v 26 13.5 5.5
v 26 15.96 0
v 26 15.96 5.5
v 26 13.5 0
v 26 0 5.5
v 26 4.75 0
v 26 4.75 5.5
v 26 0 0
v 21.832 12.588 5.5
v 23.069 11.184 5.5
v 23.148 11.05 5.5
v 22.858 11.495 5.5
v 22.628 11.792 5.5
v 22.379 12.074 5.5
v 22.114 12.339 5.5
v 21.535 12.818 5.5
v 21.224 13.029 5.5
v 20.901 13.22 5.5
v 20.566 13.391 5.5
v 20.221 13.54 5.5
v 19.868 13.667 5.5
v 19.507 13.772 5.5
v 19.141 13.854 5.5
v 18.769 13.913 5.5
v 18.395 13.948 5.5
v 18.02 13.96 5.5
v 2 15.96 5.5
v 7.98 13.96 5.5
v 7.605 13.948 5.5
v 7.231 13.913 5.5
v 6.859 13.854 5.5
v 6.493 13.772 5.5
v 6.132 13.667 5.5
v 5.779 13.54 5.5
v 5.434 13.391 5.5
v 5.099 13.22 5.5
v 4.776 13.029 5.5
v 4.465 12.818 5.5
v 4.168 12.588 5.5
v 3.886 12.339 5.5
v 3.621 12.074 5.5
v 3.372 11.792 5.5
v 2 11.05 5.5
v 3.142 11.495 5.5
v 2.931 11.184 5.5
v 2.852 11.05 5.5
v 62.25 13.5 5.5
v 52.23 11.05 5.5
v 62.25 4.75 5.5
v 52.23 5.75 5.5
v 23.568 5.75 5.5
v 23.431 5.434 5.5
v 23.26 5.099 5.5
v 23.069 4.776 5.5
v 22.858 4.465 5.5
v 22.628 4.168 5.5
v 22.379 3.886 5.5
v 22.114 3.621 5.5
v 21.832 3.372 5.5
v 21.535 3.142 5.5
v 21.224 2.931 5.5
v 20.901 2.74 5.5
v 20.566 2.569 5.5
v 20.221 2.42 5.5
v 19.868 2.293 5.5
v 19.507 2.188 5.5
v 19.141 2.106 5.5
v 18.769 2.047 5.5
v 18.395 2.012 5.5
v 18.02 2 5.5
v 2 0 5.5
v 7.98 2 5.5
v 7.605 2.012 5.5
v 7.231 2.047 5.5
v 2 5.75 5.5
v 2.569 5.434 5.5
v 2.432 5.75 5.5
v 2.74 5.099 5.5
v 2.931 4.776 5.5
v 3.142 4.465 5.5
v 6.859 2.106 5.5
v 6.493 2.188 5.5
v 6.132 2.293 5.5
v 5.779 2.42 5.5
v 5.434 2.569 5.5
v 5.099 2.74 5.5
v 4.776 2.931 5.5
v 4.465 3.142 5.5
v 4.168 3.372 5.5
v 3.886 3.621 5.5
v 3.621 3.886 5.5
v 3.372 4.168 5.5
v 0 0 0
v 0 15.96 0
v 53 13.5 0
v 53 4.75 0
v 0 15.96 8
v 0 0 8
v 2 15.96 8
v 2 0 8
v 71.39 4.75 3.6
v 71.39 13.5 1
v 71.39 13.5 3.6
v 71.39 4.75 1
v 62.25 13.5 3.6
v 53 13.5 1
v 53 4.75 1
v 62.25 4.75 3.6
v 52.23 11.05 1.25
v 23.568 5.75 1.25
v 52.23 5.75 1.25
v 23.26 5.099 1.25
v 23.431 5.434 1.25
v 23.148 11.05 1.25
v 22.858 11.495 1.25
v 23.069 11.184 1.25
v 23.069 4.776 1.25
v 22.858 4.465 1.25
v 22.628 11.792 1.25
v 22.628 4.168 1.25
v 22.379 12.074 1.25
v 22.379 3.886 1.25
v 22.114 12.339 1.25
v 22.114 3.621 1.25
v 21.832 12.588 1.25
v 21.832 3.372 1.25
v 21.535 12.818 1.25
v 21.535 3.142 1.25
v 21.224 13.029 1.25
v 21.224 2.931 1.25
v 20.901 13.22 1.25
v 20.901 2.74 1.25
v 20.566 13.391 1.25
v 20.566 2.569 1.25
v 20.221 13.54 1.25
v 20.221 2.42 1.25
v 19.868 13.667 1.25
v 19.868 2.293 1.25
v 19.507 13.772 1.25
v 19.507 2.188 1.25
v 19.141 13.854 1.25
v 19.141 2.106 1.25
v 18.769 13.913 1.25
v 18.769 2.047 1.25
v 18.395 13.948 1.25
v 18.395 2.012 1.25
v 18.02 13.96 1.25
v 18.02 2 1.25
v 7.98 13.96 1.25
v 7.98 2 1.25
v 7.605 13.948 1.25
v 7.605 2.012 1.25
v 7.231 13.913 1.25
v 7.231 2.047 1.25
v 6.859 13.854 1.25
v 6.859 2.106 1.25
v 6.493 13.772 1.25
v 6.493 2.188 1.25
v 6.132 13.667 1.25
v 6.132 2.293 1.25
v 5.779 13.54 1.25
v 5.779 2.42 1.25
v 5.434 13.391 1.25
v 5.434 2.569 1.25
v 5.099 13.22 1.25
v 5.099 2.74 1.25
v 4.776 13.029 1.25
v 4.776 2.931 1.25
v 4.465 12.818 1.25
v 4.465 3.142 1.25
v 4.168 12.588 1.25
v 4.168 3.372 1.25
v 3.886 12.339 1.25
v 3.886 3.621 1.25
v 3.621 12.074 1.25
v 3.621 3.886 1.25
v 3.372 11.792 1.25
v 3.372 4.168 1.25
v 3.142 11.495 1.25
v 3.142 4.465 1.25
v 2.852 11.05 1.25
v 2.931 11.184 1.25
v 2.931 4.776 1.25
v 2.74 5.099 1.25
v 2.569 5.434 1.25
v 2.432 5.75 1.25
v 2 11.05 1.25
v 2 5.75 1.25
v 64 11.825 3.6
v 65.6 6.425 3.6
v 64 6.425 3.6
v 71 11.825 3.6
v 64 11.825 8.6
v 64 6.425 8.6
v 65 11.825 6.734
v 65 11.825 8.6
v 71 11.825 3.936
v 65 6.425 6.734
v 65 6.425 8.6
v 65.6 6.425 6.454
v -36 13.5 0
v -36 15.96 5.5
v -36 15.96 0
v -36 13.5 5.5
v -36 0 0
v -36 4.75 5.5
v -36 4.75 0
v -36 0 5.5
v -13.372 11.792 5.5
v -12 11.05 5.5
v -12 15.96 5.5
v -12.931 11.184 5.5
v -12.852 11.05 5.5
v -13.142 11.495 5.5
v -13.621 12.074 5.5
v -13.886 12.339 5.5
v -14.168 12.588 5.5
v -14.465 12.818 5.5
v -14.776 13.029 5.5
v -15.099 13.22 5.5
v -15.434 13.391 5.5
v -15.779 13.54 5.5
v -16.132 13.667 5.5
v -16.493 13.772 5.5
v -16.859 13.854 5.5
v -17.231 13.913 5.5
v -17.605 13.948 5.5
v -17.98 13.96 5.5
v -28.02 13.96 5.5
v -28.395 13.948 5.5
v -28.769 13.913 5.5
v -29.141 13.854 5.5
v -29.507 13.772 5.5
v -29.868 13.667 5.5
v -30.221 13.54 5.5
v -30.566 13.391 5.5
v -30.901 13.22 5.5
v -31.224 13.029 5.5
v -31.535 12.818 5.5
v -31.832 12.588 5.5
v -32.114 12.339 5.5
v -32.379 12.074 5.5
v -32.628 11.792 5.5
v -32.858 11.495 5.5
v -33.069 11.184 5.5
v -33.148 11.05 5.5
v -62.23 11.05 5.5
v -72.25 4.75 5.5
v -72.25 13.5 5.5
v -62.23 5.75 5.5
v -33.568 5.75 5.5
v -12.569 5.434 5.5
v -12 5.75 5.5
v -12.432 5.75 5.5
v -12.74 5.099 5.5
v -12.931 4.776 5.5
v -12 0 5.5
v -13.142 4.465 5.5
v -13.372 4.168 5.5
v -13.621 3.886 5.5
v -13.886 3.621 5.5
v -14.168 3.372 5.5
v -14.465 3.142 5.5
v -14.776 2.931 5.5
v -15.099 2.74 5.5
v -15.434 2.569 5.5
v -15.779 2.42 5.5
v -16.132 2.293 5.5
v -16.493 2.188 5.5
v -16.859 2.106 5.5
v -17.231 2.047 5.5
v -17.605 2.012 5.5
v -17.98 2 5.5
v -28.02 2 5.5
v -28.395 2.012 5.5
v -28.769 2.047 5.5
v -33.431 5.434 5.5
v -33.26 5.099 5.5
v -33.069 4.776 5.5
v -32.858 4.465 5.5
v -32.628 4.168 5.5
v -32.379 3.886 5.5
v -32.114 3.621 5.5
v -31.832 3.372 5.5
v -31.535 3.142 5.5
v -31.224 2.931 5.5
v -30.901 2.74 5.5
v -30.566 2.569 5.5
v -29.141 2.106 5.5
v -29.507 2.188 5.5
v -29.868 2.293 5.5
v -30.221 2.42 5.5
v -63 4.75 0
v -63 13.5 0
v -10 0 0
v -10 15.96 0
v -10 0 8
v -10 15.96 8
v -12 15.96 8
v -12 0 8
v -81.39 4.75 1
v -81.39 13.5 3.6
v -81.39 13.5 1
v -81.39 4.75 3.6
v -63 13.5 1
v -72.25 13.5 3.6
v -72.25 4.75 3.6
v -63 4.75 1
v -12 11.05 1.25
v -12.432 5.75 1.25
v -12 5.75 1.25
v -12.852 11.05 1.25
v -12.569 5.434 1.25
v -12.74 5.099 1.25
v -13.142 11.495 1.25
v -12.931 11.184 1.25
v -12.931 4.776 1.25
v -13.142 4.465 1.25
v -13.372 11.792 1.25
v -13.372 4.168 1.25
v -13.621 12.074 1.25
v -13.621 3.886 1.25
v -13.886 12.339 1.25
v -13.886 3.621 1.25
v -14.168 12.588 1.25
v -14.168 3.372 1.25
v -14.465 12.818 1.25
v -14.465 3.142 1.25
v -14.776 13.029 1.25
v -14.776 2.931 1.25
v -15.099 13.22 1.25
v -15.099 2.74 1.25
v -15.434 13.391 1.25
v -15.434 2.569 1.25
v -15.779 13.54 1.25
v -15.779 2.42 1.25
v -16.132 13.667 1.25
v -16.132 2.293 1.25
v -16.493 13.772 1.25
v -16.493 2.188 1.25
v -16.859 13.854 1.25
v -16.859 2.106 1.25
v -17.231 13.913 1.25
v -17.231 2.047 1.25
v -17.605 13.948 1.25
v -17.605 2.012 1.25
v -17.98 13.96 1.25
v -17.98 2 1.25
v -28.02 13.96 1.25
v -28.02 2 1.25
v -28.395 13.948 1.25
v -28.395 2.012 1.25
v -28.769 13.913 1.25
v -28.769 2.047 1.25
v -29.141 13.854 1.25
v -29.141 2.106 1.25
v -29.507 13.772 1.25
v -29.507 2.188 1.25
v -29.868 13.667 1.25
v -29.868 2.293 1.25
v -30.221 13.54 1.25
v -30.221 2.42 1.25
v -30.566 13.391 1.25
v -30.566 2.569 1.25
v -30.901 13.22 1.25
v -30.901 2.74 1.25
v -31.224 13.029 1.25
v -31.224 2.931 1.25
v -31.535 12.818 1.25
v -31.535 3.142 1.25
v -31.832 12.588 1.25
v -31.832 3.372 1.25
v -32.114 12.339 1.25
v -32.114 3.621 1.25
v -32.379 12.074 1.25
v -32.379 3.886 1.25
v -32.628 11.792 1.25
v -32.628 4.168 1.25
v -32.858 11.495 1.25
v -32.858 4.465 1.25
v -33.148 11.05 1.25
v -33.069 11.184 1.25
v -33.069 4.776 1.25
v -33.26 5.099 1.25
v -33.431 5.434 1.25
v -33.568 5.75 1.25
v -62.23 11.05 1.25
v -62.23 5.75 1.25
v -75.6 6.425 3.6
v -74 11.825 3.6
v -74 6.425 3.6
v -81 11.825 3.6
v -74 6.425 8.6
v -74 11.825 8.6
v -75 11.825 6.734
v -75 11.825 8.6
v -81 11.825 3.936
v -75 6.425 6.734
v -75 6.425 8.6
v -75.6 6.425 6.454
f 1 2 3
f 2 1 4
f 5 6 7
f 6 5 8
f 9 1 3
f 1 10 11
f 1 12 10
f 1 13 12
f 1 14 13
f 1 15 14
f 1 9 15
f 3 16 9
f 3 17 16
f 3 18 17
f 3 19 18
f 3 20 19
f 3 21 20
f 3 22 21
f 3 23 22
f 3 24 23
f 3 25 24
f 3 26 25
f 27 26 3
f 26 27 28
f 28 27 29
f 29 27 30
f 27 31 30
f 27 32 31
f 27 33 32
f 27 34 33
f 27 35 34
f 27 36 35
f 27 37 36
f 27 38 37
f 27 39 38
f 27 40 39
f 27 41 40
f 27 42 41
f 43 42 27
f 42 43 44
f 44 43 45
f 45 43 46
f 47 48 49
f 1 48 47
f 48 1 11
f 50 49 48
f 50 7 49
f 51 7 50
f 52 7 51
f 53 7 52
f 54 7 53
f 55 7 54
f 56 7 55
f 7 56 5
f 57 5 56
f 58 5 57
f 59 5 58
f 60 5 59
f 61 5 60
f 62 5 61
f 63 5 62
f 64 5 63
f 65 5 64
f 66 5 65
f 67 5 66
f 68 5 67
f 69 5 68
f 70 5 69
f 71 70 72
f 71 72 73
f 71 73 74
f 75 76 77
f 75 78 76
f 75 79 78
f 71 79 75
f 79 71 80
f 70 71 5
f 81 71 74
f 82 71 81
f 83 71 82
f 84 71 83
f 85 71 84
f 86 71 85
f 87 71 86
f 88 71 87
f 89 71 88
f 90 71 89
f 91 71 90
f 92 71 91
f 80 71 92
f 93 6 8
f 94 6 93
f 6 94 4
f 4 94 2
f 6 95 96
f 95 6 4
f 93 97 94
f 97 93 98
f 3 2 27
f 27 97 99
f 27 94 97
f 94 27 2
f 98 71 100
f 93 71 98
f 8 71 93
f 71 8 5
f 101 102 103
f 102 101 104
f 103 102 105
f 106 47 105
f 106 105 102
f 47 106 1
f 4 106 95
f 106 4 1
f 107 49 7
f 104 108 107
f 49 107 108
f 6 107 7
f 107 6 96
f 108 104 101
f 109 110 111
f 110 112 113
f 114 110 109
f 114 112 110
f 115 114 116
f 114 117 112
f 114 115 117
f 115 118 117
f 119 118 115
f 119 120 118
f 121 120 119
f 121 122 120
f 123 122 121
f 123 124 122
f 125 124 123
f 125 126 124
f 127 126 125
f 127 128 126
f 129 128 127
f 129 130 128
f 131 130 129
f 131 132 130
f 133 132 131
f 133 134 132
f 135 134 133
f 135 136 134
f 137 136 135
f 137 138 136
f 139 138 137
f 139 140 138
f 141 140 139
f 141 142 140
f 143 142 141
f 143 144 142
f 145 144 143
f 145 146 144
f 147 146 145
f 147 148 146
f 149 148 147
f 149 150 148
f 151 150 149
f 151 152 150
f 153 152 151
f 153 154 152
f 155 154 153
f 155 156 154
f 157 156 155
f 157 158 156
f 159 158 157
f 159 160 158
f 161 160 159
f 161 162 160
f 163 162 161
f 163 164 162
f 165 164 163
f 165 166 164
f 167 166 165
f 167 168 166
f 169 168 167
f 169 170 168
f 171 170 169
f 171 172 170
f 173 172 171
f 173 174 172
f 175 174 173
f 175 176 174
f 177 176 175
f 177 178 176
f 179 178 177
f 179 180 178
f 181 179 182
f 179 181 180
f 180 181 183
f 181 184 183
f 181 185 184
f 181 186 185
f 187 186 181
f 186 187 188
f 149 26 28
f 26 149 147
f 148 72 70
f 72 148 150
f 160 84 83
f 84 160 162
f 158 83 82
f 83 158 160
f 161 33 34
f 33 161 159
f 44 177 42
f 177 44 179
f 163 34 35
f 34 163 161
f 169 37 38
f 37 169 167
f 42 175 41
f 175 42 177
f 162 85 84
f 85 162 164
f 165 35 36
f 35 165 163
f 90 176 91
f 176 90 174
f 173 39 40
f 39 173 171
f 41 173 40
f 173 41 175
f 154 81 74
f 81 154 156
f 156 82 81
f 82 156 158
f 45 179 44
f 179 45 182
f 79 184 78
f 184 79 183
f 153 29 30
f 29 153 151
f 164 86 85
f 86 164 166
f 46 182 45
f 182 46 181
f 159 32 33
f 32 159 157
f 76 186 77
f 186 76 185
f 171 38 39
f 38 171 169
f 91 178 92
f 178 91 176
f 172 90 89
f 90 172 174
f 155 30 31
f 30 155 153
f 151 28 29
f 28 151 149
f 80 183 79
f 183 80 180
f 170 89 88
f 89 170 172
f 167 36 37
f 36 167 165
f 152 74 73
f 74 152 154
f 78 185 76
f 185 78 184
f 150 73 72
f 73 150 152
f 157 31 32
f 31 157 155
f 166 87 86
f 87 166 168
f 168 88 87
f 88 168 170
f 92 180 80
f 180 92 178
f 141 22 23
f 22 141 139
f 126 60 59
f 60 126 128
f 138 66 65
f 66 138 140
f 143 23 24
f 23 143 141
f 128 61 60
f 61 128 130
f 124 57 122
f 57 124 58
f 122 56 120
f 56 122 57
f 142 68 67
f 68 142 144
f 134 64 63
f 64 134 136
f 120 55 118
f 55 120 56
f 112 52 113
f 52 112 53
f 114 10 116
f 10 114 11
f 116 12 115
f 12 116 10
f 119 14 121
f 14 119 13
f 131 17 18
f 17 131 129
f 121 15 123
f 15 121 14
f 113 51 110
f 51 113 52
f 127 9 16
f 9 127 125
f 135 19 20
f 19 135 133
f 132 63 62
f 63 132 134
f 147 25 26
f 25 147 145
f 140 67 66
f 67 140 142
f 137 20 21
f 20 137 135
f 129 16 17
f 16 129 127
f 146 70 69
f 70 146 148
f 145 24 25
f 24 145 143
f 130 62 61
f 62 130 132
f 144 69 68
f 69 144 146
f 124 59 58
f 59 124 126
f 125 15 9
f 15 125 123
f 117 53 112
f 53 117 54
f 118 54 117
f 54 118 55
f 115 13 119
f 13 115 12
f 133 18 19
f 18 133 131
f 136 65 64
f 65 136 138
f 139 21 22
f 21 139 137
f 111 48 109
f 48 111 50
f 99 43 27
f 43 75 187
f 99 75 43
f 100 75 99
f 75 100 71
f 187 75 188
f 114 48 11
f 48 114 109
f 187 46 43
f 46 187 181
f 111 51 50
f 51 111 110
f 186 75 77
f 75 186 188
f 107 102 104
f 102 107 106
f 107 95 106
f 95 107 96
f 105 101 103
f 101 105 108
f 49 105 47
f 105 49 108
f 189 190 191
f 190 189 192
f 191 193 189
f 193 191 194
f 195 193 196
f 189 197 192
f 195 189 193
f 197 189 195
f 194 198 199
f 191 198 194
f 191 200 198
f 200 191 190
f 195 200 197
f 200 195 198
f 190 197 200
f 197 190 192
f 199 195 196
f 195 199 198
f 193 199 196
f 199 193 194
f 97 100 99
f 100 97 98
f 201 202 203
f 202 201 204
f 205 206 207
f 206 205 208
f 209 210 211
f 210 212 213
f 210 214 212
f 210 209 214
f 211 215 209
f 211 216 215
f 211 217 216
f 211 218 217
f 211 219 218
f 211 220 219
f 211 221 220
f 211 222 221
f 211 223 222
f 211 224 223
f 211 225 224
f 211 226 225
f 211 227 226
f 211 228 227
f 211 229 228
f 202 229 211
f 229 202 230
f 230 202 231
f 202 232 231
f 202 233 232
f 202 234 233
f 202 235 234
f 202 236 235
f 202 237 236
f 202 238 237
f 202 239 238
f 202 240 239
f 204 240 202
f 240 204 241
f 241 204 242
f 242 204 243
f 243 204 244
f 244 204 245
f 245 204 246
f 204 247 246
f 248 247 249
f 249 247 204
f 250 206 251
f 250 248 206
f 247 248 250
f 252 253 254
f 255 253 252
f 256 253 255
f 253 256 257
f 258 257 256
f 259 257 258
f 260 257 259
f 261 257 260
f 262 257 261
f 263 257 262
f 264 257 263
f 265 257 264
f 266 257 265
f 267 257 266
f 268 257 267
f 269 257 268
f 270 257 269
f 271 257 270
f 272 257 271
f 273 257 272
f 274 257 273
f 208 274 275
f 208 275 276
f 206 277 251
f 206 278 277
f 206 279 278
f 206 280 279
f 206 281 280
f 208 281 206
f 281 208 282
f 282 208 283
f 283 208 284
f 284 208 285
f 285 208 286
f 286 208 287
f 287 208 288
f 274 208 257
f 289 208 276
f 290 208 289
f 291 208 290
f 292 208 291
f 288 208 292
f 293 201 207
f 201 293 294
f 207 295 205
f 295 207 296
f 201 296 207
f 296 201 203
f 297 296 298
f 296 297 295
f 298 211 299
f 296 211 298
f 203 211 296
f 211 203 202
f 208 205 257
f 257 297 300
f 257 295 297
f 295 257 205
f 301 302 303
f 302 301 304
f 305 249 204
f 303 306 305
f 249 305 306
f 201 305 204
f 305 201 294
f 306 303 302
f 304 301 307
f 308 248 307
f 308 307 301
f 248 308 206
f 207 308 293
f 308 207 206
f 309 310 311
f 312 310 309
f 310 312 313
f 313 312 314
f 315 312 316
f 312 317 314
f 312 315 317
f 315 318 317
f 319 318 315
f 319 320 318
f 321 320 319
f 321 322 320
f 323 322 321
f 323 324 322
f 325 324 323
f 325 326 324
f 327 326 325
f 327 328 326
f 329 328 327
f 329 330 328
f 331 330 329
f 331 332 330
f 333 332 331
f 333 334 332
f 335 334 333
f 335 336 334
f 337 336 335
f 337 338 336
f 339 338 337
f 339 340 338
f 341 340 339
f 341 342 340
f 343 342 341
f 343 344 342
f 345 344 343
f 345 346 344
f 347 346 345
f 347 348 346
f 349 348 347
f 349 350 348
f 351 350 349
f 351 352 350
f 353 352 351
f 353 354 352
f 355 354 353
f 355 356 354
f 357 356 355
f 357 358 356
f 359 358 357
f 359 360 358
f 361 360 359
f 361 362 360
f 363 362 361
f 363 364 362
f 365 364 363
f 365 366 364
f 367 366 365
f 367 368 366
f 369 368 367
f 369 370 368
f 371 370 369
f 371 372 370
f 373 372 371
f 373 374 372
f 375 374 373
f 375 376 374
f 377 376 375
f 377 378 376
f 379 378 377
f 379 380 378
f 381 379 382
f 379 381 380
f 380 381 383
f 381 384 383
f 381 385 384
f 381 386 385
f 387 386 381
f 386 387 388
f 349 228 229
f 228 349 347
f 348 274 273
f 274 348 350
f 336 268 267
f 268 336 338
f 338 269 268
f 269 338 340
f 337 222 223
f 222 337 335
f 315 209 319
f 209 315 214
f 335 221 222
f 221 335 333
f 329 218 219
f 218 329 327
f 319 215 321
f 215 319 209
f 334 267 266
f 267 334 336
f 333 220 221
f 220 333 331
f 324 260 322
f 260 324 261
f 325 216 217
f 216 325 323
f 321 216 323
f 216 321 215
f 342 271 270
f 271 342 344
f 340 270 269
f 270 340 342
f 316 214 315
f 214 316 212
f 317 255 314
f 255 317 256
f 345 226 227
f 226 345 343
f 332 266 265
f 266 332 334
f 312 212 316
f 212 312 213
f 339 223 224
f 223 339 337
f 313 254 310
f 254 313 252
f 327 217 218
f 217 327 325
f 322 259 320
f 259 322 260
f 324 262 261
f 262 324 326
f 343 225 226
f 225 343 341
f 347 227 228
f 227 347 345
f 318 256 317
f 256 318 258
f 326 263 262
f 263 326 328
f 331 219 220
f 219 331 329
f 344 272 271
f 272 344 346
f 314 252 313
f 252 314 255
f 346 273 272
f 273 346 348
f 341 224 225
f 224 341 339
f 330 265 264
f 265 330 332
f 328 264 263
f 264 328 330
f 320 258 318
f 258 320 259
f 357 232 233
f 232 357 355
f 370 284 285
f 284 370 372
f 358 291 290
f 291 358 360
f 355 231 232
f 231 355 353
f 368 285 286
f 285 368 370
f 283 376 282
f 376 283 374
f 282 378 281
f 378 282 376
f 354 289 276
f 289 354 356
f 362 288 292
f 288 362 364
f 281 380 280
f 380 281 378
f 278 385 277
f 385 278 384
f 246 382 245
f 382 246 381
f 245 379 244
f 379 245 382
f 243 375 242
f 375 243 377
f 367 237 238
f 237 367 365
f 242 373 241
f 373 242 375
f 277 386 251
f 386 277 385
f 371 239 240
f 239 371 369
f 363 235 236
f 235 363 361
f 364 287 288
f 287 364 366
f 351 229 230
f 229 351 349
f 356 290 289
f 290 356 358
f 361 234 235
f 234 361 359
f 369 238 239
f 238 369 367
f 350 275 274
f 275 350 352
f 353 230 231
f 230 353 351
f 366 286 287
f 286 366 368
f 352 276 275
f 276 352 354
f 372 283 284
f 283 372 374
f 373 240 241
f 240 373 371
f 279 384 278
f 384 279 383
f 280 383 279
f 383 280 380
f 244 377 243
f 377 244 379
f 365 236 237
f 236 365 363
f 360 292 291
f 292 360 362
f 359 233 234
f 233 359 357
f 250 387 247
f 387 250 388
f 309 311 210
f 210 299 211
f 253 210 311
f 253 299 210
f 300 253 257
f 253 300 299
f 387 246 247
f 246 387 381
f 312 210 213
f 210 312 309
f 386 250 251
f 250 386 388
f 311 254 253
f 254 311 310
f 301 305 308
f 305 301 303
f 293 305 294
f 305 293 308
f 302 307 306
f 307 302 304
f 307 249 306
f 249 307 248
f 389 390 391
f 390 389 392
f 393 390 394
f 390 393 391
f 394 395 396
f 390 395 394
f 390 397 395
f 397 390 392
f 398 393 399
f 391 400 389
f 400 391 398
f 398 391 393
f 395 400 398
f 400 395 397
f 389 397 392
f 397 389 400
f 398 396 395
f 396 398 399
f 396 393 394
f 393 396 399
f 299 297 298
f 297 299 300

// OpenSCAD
$fn=100;

overall_length = 71.39;
largest_width = 15.96;
finger_section_length = 26.0;
shoulder1 = 2.0;
shoulder2 = 4.75;
slide_width = 8.75;
spring_area_length = 50.23;
spring_area_width = 5.3;
height = 5.5;
base_height = 1.25;
wall_width = 2.0;
hook_width = 4.5;
hook_length = 6.81;

module create_slider() {
    difference() {
        union() {
            color("red") 
            cube([finger_section_length, largest_width, height]);
            color("blue")
            translate([0, shoulder2, 0]) {
                cube([overall_length, slide_width, height]);
            }
        }
        translate([largest_width/2, wall_width, base_height]) {
            cube([finger_section_length - largest_width,
                  largest_width - 2*wall_width,
                  height]);
        }
        translate([largest_width/2, largest_width/2, base_height]) cylinder(h = 200, r = largest_width/2-wall_width);
        translate([finger_section_length-largest_width/2, largest_width/2, base_height]) cylinder(h = 200, r = largest_width/2-wall_width);
        translate([wall_width, shoulder2 + 1, base_height]) {
            cube([spring_area_length,
                  spring_area_width,
                  height]);
        }
        translate([53.0, shoulder2-0.1, -0.1]) {
            cube([200, slide_width+0.2, 1+0.1]);
        }
        translate([62.25, shoulder2-0.1, 1+2.6]) {
            cube([200, slide_width+0.2, 200]);
        }
    }

    translate([64, shoulder2 + (slide_width - 5.4)/2, 1+2.6]) {
        color("purple") cube([1, 5.4, 5]);
        difference() {
            color("yellow") cube([7, 5.4, 3.6]);
            translate([0, -0.1, 3.6]) rotate([0, 25, 0]) cube([7+1, 5.4+0.2, 10]);
            translate([7, 5.4, 0]) rotate([0, 0, -135]) cube([10, 10, 10]);
        }
    }

    cube([2, largest_width, 8]);
}

create_slider();

translate([-10, 0, 0]) mirror([1, 0, 0]) create_slider();
